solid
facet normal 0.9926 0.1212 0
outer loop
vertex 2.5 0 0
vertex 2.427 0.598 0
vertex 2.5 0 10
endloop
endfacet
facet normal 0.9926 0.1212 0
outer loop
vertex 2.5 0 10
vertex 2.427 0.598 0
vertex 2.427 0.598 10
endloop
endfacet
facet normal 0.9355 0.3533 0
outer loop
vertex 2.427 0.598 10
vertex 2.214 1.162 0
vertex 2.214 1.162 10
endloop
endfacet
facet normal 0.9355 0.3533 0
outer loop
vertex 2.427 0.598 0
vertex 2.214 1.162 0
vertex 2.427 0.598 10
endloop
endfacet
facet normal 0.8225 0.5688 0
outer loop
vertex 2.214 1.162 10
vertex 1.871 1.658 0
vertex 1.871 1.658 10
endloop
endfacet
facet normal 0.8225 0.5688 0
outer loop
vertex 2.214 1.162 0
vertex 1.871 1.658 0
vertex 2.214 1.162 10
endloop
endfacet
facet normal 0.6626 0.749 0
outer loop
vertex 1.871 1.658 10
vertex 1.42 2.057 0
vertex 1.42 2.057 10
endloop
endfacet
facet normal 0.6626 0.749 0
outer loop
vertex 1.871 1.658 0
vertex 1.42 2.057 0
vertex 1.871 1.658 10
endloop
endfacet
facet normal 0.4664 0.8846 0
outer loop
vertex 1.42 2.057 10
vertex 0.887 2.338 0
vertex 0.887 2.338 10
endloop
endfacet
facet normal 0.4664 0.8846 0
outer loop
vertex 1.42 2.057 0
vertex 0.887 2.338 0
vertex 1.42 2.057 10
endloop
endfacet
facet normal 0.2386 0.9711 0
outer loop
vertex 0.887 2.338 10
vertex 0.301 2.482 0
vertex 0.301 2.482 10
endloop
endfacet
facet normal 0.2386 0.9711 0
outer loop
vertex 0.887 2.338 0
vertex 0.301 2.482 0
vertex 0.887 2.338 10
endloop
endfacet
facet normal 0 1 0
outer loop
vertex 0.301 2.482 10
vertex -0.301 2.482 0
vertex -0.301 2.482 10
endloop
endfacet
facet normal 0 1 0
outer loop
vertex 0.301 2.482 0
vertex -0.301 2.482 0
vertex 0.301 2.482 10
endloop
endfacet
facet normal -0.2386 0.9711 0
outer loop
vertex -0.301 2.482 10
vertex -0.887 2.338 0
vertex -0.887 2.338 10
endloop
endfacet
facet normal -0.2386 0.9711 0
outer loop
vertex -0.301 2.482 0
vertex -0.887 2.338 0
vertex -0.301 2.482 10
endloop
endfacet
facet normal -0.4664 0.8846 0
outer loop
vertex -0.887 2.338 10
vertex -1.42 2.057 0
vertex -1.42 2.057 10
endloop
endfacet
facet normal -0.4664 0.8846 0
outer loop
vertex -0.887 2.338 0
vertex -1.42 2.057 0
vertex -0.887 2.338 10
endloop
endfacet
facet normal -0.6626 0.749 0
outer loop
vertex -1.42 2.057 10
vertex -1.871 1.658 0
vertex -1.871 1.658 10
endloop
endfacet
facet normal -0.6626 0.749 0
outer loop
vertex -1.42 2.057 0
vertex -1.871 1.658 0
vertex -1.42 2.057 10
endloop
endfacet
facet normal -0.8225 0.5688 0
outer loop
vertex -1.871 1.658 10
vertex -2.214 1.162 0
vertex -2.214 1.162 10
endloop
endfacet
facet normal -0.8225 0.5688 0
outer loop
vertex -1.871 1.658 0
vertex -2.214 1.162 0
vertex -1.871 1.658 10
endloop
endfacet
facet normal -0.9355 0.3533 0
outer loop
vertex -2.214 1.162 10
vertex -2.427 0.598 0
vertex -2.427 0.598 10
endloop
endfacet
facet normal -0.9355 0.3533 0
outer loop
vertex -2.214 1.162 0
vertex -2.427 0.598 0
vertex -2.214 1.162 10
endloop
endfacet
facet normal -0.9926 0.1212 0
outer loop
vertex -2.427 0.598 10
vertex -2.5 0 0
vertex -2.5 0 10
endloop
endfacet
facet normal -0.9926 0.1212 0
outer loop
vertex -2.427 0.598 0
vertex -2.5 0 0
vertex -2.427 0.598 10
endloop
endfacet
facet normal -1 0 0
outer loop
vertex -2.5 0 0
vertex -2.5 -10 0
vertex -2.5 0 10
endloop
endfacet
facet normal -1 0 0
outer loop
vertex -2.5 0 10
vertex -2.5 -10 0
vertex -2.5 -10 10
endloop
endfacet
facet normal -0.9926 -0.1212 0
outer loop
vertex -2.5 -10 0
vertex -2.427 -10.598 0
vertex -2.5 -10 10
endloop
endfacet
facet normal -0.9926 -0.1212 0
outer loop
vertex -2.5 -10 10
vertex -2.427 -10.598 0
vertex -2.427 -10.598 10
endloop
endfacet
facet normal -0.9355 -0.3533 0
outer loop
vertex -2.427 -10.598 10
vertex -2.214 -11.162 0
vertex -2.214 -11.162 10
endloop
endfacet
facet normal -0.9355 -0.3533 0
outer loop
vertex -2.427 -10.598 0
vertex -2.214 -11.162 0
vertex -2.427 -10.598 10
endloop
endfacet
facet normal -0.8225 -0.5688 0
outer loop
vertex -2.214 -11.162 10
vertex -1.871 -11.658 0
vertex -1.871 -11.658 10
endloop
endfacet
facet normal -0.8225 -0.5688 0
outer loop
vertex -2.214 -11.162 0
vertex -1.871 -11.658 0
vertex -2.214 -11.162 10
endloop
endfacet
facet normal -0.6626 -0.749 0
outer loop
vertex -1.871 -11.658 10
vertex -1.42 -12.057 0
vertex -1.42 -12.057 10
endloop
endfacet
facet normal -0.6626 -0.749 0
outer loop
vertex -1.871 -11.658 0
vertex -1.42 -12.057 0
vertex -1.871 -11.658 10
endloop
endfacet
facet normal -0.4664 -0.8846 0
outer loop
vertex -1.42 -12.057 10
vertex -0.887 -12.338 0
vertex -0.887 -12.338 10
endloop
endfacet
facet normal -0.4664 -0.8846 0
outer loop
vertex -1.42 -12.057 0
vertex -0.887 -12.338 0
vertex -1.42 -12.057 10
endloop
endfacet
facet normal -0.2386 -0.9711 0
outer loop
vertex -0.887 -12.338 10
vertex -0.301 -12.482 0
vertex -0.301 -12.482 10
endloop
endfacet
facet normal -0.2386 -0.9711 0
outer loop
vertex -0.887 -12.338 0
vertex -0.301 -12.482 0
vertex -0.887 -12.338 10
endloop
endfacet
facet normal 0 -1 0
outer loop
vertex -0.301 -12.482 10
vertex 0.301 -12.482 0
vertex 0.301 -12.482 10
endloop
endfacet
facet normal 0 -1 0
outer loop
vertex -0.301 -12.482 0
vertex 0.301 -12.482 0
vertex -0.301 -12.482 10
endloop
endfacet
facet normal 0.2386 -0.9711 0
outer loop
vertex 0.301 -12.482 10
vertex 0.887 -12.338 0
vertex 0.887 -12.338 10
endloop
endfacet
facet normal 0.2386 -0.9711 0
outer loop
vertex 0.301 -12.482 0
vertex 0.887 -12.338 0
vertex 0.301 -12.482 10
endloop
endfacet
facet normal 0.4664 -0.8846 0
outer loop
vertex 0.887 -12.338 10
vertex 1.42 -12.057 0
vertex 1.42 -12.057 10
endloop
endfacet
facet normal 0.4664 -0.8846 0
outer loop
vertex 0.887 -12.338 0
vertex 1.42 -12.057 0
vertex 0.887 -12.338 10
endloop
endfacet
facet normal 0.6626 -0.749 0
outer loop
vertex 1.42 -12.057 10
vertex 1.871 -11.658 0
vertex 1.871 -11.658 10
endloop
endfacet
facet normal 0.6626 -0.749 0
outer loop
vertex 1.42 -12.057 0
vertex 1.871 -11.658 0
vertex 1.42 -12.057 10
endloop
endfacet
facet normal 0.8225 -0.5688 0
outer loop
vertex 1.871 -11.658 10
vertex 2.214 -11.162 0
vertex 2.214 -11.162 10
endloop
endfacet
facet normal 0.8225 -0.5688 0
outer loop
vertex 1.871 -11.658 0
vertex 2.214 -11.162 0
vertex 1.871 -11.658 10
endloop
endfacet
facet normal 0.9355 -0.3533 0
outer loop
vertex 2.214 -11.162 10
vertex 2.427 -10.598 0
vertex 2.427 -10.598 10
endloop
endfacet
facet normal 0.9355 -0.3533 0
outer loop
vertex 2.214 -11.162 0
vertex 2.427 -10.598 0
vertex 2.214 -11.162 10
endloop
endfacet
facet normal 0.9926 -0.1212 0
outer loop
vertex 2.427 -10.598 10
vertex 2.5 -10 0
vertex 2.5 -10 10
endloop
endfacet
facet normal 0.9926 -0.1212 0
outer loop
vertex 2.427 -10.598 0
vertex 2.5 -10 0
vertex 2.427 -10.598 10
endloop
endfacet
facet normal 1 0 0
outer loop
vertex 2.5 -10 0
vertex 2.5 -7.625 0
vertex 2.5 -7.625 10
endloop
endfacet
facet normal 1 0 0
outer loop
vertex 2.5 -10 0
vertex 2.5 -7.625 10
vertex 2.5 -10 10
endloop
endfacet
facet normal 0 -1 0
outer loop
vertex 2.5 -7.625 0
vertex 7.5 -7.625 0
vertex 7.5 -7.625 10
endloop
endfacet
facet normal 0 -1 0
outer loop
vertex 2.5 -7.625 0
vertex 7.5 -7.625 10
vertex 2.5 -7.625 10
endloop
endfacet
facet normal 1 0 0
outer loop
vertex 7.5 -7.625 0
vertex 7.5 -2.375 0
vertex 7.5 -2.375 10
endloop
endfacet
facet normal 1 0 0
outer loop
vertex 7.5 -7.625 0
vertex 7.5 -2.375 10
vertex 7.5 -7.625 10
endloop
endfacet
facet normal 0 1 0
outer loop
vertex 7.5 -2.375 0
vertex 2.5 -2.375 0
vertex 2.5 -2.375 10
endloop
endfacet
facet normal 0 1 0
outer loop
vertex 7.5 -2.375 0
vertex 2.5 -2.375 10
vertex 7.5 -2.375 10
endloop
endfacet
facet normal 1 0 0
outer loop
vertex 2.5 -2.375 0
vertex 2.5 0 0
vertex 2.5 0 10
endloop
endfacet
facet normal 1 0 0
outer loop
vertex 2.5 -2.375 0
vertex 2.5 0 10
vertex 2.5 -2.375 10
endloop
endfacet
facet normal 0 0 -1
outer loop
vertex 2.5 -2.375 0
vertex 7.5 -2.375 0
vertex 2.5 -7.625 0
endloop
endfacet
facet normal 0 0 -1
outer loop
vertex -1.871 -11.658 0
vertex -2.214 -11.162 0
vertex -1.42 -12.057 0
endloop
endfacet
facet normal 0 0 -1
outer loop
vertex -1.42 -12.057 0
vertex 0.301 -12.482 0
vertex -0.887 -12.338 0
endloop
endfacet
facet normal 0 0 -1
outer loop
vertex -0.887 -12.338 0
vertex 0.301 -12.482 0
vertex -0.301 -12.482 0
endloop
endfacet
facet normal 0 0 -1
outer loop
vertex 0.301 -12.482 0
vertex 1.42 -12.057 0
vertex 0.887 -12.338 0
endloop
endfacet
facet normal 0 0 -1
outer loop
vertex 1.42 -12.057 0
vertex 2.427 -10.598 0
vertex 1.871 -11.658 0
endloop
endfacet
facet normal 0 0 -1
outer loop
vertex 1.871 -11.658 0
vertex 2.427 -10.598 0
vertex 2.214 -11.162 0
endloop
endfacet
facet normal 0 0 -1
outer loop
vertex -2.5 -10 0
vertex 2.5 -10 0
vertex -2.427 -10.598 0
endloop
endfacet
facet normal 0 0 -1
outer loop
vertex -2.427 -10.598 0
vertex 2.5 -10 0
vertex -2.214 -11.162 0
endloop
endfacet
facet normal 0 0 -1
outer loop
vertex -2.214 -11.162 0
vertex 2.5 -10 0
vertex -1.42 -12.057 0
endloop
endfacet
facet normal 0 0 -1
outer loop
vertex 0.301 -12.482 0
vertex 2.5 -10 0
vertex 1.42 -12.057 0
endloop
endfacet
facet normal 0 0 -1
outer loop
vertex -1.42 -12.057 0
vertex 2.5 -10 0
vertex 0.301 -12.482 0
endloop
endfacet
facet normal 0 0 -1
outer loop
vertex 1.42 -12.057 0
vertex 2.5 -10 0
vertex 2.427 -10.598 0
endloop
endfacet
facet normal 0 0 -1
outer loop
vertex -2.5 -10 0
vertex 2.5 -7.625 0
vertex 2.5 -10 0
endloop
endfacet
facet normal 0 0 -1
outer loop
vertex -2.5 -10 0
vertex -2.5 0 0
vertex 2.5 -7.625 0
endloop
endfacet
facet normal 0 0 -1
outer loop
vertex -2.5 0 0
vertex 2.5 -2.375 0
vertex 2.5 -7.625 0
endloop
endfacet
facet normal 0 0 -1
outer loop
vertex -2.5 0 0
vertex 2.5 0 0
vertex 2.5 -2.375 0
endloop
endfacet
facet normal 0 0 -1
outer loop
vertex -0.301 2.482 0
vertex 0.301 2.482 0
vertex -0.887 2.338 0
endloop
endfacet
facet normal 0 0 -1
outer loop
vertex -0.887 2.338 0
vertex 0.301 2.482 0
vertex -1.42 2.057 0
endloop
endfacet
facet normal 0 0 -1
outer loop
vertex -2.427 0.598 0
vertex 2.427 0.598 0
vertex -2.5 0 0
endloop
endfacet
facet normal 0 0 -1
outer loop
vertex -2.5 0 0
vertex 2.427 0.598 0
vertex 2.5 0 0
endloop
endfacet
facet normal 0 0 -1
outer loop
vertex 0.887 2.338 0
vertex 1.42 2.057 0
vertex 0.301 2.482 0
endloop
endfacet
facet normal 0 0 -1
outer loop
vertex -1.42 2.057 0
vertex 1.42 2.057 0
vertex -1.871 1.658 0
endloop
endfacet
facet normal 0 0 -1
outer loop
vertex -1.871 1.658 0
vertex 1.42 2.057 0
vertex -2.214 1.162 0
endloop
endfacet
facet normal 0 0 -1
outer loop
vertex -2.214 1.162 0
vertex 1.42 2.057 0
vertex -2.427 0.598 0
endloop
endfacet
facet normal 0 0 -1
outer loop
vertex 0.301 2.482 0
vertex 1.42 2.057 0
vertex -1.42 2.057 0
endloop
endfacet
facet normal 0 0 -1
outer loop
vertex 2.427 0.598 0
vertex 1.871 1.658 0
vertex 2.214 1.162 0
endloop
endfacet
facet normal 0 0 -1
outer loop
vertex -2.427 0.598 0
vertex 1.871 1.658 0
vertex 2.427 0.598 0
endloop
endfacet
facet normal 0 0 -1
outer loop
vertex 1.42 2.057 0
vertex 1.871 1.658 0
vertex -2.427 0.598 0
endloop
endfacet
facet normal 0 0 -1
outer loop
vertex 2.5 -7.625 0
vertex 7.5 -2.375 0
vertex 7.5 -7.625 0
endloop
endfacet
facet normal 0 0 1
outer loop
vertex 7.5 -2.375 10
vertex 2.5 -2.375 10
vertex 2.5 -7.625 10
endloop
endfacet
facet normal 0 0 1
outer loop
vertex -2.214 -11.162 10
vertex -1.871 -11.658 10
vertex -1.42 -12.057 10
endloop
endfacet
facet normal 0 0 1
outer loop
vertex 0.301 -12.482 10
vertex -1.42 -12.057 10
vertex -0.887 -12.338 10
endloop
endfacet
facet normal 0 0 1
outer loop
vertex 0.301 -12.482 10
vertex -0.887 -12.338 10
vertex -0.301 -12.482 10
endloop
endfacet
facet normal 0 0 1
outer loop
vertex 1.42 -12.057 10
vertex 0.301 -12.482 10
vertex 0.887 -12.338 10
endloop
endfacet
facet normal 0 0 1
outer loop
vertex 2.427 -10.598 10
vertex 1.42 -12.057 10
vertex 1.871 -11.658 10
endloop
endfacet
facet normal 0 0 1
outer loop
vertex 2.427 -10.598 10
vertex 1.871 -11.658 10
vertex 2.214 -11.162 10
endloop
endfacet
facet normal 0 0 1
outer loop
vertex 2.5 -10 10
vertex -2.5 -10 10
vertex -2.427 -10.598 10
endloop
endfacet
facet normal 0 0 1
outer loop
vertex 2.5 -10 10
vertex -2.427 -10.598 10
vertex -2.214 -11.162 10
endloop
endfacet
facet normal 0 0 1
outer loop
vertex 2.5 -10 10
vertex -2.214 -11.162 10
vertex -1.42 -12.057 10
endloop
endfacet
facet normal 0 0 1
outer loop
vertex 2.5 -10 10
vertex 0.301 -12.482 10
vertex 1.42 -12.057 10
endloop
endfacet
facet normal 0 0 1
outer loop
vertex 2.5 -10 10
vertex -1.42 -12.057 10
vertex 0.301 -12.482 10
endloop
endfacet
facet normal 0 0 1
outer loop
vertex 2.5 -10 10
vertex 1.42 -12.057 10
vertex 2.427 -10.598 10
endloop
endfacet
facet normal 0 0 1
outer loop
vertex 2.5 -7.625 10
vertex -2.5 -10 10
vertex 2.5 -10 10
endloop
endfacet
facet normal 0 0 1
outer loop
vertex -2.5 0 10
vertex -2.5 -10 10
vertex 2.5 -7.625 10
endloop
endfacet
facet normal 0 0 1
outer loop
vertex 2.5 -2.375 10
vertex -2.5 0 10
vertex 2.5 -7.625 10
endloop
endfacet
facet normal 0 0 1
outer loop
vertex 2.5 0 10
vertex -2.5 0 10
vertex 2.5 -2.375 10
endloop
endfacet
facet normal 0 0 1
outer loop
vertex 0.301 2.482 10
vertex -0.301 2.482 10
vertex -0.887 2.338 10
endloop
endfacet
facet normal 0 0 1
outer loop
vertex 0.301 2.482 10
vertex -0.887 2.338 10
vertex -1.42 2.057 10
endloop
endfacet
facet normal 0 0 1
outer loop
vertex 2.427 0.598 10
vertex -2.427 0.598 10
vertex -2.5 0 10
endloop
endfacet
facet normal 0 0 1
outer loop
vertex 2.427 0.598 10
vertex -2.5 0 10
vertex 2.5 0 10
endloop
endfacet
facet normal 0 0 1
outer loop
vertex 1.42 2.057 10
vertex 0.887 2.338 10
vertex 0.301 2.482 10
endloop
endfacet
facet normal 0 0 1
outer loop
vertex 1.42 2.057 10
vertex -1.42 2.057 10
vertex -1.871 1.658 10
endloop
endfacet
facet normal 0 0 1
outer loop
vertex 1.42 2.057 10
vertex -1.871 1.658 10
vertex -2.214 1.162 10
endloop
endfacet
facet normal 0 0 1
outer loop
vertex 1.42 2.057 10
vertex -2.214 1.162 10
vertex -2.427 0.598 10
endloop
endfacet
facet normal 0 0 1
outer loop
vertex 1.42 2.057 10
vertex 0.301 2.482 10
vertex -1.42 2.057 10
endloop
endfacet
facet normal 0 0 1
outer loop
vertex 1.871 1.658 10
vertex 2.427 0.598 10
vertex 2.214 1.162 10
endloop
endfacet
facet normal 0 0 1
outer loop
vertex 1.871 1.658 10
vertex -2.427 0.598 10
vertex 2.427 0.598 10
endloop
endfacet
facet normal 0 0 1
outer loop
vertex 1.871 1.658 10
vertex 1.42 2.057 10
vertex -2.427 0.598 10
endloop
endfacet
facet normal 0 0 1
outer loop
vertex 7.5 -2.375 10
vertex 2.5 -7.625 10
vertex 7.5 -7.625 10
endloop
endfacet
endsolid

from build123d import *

# Parameters (mm, degrees)
PAD_DEPTH = 10


with BuildPart() as part:
    # Sketch → Pad (new body)
    with BuildSketch(Plane.XY):
        with BuildLine():
            ThreePointArc((2.5, 0), (0, 2.5), (-2.5, 0))
            Line((-2.5, 0), (-2.5, -10))
            ThreePointArc((-2.5, -10), (0, -12.5), (2.5, -10))
            Line((2.5, -7.625), (2.5, -10))
            Line((7.5, -7.625), (2.5, -7.625))
            Line((7.5, -2.375), (7.5, -7.625))
            Line((2.5, -2.375), (7.5, -2.375))
            Line((2.5, 0), (2.5, -2.375))
        make_face()
    extrude(amount=PAD_DEPTH)


solid = part.part
